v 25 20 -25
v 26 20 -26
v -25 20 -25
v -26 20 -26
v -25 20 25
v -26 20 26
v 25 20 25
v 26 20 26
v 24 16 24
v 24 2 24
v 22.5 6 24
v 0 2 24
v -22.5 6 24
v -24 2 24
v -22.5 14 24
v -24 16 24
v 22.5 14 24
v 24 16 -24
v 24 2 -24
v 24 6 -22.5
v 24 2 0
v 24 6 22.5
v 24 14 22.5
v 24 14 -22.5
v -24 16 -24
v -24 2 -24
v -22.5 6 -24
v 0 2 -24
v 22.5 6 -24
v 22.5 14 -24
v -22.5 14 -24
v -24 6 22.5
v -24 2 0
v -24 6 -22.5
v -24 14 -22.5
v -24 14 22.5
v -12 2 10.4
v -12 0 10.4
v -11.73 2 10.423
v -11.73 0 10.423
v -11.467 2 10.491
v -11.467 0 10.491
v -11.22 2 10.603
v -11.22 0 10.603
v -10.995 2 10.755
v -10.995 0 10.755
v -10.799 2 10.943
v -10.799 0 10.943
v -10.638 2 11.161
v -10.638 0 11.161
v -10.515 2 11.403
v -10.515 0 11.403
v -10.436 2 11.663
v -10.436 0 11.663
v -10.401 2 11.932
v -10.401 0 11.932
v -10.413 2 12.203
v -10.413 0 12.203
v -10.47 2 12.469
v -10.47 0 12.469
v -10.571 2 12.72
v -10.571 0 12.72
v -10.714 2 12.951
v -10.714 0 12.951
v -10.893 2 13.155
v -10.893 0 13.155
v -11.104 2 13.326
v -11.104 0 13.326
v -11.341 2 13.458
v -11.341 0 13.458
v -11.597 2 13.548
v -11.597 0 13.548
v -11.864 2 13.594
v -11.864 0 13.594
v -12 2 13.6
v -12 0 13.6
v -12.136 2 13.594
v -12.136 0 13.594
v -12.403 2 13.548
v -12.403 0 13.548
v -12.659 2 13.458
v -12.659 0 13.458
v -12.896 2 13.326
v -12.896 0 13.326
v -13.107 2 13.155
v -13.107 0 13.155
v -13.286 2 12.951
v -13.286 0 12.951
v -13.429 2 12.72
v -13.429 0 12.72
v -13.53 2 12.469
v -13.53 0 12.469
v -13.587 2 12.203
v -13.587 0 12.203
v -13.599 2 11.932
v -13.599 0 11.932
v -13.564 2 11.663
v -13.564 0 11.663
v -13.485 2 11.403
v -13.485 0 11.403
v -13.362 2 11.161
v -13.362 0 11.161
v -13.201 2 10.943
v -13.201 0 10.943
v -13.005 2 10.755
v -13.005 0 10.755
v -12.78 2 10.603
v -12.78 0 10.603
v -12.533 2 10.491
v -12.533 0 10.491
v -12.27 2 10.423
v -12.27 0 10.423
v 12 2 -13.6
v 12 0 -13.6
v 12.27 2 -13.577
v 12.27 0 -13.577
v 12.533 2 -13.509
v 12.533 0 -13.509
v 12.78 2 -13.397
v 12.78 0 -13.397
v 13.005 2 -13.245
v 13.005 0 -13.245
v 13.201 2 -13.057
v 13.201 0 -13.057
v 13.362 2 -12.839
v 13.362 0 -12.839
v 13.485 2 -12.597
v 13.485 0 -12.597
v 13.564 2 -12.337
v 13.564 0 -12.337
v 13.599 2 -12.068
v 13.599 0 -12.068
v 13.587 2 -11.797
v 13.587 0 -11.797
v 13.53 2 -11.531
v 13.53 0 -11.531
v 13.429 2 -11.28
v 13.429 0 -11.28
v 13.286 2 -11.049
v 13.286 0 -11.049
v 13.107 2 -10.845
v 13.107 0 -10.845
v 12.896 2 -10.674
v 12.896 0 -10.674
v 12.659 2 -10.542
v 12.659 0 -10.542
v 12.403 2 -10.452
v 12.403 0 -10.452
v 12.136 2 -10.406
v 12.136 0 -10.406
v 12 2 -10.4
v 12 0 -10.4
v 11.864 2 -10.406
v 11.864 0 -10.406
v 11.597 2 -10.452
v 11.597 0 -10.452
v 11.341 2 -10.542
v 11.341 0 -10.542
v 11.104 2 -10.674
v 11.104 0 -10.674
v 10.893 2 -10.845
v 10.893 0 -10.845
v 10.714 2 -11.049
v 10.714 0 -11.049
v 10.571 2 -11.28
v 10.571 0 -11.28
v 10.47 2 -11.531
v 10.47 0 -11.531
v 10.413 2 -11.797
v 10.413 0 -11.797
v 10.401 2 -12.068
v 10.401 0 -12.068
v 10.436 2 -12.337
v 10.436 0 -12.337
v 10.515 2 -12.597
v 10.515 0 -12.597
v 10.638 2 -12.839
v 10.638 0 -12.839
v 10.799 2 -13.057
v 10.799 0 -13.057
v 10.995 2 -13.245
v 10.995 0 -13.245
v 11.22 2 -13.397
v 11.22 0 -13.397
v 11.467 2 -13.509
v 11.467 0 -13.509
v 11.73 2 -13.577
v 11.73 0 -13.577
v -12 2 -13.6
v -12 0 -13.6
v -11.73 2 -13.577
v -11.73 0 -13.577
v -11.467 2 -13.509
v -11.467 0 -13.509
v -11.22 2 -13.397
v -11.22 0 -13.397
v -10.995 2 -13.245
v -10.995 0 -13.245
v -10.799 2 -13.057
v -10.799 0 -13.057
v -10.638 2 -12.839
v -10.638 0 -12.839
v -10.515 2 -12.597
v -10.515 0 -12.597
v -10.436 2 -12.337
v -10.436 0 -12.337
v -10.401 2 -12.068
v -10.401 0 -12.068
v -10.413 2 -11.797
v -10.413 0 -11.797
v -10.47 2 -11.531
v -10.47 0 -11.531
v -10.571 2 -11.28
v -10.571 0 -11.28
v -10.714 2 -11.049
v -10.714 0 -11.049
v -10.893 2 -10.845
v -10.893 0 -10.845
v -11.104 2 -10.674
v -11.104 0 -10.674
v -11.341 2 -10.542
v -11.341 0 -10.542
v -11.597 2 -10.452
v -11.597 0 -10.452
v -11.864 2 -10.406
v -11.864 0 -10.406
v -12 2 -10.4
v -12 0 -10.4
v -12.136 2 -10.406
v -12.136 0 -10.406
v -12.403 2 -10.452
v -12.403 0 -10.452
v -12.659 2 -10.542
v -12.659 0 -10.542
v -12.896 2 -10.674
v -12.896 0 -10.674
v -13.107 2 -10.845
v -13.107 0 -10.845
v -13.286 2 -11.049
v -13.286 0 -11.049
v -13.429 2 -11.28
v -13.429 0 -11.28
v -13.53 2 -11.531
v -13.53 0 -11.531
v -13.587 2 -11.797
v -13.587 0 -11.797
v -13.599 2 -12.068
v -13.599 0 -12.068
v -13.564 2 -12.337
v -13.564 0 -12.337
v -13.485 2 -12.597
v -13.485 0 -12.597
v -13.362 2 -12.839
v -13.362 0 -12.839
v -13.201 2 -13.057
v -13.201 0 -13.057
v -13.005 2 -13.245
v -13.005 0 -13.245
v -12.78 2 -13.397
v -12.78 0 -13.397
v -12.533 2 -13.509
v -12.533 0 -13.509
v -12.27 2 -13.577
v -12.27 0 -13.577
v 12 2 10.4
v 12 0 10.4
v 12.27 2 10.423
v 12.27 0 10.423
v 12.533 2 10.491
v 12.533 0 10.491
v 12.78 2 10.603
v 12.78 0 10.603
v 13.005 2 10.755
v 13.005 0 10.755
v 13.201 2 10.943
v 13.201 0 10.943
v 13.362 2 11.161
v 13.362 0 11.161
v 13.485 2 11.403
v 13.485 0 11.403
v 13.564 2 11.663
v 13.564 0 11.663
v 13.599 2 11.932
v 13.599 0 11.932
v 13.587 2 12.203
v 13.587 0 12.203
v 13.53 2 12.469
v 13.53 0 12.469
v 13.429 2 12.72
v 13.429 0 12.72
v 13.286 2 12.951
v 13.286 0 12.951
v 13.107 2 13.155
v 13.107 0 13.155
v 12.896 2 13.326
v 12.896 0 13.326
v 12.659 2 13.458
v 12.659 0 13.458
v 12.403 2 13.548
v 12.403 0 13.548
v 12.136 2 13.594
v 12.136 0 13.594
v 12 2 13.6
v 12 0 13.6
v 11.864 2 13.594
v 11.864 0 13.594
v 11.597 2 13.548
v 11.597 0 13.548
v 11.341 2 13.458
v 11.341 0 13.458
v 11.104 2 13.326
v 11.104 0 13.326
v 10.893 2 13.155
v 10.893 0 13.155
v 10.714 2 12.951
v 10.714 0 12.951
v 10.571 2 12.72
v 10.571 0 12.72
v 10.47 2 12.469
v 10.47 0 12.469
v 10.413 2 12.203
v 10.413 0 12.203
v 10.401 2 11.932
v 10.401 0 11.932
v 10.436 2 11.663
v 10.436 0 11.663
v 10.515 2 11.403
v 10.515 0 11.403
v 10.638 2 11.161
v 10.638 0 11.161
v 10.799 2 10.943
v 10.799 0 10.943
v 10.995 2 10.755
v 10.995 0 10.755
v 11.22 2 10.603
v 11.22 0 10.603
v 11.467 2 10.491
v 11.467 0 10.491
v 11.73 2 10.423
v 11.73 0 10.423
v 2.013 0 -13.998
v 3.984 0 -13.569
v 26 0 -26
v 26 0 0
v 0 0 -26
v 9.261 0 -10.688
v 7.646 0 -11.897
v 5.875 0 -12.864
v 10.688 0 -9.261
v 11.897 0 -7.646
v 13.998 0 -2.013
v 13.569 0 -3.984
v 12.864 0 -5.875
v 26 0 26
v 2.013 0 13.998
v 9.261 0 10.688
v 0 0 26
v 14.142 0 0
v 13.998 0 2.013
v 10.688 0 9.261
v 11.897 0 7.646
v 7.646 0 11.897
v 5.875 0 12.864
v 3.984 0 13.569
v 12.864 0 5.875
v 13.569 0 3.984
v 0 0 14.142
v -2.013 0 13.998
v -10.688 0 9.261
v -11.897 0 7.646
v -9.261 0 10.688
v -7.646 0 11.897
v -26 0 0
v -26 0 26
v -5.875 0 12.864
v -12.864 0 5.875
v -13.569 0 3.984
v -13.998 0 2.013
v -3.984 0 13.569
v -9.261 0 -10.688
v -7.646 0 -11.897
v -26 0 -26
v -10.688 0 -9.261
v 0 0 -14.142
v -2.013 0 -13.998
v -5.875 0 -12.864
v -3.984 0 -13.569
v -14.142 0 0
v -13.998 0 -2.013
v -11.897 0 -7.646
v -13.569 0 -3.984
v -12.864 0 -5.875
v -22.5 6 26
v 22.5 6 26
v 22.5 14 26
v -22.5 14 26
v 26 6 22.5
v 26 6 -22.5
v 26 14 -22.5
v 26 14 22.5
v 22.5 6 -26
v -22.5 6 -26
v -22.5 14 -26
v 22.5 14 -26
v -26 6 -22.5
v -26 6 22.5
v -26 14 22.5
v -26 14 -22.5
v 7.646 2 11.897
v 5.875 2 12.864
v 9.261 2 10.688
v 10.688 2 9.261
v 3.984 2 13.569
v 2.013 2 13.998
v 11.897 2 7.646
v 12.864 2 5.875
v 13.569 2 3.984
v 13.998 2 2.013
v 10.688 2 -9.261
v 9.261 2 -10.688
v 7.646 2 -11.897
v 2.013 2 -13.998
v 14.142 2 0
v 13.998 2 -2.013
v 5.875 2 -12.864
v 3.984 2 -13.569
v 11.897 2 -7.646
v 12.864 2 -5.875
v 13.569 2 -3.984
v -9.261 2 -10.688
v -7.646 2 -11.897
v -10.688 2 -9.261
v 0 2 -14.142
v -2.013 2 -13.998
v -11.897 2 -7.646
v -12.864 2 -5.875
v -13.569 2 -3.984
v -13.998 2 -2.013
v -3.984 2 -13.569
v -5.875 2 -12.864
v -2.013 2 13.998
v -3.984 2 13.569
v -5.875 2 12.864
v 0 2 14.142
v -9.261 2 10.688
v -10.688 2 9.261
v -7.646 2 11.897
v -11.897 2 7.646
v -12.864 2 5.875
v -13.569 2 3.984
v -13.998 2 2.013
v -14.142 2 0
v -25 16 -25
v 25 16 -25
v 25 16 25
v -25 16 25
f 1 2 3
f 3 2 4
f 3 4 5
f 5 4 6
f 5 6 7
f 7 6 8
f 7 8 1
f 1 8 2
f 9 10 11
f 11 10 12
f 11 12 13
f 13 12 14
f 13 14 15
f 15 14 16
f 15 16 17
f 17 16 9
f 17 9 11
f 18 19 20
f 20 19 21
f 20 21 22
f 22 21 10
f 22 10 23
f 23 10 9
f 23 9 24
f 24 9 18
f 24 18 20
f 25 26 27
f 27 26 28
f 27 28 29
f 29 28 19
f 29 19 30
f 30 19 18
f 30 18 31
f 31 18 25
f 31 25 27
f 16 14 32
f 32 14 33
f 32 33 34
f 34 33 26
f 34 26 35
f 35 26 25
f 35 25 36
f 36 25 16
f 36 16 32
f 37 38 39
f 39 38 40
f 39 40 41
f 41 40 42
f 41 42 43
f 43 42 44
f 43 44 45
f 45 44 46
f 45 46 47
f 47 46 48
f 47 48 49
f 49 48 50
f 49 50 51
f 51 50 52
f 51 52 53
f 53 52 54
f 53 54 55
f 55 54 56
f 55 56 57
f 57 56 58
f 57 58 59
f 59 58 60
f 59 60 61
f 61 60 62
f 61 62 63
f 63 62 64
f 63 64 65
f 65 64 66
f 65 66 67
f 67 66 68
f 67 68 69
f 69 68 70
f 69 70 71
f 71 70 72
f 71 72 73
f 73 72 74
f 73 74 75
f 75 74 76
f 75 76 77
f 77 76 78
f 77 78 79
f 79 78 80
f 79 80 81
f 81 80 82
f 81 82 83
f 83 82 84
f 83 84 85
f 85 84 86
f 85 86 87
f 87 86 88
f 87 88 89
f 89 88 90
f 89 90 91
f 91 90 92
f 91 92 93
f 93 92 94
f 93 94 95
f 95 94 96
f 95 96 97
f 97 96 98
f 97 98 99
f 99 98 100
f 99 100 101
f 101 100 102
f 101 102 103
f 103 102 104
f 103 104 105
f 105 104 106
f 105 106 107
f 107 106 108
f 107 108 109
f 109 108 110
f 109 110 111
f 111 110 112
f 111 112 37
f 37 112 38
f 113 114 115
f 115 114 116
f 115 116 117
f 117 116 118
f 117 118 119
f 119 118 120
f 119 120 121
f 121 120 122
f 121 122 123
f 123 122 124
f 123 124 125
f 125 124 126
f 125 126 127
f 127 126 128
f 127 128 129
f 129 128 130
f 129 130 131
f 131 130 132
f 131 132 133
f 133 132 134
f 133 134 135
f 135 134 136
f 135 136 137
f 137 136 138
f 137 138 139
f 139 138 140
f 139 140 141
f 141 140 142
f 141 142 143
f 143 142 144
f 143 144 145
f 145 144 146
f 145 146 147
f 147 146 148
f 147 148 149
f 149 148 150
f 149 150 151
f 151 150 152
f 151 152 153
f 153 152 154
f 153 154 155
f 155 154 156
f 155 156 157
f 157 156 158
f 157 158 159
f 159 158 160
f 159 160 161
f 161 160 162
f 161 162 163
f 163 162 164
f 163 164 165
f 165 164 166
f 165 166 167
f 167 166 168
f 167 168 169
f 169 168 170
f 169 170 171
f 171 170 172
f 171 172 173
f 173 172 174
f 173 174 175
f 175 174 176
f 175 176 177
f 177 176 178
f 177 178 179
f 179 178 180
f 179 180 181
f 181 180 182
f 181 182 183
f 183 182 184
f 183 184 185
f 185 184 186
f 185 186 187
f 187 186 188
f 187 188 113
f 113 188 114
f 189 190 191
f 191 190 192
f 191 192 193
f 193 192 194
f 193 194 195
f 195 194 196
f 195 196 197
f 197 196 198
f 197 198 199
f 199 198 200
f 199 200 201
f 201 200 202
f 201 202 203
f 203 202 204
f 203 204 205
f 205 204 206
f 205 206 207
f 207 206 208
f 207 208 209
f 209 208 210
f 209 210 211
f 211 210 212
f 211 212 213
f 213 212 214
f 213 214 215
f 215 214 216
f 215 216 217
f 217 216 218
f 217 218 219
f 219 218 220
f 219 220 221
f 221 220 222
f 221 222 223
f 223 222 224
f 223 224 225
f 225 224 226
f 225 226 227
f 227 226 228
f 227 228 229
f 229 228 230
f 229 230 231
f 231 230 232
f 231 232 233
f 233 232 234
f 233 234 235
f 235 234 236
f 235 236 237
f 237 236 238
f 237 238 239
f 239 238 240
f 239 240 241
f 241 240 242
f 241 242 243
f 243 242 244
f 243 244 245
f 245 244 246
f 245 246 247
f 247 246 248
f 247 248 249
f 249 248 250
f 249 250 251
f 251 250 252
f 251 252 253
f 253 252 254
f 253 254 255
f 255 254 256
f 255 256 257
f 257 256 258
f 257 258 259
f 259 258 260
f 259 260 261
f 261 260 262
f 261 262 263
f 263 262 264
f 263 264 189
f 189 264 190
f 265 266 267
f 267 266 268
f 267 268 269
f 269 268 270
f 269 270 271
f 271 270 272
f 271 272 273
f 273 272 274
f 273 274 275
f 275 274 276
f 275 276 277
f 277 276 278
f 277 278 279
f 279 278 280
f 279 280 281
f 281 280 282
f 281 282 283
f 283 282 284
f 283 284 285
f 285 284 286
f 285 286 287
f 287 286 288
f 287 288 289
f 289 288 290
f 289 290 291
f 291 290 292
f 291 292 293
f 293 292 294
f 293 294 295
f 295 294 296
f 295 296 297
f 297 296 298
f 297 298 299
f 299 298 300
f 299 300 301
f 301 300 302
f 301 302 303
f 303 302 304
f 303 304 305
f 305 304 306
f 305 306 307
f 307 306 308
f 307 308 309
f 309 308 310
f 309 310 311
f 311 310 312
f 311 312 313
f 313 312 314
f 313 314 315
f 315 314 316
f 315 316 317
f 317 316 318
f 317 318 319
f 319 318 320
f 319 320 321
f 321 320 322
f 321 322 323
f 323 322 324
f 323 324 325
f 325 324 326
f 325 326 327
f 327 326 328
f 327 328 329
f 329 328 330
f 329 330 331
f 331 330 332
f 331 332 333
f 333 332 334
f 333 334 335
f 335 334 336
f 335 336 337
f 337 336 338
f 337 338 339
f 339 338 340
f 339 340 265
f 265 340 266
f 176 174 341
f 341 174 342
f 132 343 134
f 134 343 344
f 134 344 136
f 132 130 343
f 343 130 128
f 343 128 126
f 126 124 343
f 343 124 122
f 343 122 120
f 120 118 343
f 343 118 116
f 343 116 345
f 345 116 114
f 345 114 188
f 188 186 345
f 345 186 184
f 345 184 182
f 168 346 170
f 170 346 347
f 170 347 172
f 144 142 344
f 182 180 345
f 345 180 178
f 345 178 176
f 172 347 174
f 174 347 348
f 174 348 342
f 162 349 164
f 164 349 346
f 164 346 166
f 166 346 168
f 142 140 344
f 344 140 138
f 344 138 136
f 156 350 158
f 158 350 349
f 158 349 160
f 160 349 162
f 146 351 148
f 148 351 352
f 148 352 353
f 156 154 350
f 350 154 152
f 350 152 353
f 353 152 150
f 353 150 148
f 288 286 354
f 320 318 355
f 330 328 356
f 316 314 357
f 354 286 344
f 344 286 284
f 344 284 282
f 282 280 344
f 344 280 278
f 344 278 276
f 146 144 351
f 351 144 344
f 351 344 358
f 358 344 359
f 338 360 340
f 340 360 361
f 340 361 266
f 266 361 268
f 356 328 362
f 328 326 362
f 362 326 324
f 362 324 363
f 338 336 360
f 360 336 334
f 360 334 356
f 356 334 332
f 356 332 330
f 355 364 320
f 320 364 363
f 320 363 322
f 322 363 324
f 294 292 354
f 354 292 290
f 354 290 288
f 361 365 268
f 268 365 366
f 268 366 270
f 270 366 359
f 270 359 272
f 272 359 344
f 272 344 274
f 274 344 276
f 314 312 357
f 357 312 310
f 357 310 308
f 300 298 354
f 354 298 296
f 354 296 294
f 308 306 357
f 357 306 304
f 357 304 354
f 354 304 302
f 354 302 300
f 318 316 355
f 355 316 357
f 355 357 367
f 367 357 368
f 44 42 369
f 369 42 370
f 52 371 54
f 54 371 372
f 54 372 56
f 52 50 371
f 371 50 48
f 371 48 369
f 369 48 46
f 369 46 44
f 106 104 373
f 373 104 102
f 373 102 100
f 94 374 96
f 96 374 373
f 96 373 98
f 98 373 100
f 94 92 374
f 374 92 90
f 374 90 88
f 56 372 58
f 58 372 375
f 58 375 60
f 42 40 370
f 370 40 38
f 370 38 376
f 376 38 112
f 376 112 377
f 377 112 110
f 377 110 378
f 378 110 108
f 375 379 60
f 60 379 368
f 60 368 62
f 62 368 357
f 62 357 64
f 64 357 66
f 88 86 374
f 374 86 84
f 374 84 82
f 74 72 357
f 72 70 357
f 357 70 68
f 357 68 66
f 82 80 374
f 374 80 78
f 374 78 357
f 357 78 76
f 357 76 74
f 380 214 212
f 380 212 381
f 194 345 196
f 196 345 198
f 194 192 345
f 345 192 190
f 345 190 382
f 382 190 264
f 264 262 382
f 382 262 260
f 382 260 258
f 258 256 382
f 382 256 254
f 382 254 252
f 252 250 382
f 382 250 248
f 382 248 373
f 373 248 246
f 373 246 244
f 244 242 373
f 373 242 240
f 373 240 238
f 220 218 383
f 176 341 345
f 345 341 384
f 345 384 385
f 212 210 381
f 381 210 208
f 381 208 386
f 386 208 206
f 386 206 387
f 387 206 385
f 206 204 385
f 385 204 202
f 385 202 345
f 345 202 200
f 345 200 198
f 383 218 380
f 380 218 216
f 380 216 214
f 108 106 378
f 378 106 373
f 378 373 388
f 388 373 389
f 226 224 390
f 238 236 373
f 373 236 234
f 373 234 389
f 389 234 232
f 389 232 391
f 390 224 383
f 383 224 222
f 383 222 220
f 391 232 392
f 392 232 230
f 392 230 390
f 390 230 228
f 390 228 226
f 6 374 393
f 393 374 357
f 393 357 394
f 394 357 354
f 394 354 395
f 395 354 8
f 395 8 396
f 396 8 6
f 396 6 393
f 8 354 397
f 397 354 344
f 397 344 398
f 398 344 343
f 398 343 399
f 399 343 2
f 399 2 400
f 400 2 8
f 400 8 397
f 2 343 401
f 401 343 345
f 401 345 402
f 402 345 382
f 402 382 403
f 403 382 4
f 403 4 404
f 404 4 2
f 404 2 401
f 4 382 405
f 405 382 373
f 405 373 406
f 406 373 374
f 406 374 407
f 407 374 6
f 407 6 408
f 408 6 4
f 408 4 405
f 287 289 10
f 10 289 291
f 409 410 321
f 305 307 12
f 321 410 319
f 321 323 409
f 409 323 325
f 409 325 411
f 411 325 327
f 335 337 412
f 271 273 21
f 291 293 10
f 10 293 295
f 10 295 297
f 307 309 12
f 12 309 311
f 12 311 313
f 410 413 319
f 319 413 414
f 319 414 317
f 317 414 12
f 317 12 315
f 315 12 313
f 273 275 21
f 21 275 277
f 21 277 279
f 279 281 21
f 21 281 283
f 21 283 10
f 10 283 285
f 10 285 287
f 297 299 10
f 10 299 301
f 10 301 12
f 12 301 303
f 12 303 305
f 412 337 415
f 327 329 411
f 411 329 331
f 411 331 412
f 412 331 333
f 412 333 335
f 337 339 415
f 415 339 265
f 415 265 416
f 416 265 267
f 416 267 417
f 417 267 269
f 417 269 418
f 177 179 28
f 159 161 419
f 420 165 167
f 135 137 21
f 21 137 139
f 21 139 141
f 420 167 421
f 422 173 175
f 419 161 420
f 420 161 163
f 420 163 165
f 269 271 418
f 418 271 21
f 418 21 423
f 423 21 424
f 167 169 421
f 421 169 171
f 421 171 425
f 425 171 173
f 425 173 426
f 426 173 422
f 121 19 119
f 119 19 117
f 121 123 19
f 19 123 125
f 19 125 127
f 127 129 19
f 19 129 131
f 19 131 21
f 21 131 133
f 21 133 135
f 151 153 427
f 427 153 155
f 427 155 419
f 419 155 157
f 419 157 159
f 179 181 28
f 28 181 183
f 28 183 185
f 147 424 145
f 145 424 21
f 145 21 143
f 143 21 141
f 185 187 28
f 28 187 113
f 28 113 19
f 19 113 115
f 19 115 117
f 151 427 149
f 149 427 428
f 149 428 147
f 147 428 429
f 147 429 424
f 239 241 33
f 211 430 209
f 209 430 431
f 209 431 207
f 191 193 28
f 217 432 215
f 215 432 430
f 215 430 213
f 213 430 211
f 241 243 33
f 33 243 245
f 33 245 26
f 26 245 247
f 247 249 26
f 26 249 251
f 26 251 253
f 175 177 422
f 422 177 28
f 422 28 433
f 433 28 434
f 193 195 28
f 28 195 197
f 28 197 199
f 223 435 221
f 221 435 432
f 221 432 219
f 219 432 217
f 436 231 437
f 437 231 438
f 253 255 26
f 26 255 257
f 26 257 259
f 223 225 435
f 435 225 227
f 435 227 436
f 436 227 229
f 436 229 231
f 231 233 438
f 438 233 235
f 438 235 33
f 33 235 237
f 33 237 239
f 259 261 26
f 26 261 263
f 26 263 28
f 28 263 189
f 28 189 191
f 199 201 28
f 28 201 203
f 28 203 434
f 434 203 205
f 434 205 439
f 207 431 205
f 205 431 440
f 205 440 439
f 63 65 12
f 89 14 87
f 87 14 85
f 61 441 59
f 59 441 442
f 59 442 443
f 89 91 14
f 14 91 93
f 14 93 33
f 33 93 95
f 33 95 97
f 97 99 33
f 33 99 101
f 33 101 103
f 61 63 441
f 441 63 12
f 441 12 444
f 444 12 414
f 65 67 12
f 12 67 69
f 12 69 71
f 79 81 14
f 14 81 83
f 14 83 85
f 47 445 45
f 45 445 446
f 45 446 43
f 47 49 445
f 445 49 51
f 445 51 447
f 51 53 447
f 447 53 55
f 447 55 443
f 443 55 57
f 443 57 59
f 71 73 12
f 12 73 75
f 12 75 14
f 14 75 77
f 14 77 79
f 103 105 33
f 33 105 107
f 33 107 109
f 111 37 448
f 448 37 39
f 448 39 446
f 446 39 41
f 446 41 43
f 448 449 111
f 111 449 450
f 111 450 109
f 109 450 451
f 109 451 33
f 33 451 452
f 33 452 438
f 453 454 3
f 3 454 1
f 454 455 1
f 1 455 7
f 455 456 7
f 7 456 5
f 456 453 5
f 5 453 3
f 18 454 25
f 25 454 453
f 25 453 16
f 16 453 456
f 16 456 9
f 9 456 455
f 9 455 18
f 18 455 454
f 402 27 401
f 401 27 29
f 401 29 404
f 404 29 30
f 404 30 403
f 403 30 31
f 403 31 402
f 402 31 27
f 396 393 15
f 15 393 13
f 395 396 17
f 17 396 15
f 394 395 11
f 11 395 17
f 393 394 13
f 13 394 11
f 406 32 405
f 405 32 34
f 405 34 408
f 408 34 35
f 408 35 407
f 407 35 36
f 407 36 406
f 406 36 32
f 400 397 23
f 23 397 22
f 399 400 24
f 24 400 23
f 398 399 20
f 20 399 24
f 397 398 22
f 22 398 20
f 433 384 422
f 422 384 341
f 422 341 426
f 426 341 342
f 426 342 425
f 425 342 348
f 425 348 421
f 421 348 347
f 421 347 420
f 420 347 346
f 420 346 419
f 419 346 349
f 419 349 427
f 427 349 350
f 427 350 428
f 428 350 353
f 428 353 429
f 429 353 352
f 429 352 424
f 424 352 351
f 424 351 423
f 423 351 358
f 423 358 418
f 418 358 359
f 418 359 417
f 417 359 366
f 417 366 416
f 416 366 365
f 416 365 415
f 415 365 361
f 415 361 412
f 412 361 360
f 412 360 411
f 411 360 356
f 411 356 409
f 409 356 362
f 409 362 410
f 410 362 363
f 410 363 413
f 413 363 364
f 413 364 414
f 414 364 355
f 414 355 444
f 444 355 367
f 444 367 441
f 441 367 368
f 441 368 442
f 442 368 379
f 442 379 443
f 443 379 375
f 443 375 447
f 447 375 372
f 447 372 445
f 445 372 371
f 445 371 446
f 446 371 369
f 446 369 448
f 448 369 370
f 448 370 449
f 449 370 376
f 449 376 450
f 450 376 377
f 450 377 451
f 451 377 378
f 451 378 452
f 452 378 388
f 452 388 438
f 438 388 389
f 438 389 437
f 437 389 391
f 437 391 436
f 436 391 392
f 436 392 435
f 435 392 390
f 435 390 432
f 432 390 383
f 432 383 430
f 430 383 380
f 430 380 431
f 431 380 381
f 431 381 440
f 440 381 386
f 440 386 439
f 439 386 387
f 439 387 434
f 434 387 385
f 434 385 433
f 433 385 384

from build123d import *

# Parameters (mm, degrees)
SKETCH_1_W               = 52
SKETCH_1_H               = 52
SKETCH_1_R               = 1.6
SKETCH_1_W_2             = 20
SKETCH_1_H_2             = 20
EXTRUDE_5_DEPTH          = 20
SHELL_6_T                = -2
SKETCH_4_W               = 50
SKETCH_4_H               = 50
SKETCH_4_W_2             = 48
SKETCH_4_H_2             = 48
CUT_EXTRUDE_4_DEPTH      = 4
CUT_EXTRUDE_5_DEPTH      = 60.799665551
CUT_EXTRUDE_5_DEPTH_BACK = 60.799665551
SKETCH_5_W               = 45
SKETCH_5_H               = 8
CUT_EXTRUDE_6_DEPTH      = 60.799665551
CUT_EXTRUDE_6_DEPTH_BACK = 60.799665551
SKETCH_6_W               = 45
SKETCH_6_H               = 8
SKETCH_7_R               = 14.142135624
CUT_EXTRUDE_7_DEPTH      = 10


with BuildPart() as part:
    # 草图1 → 凸台-拉伸5 (new body)
    with BuildSketch(Plane(origin=(0, 0, 0), x_dir=(1, 0, 0), z_dir=(0, 1, 0))):
        Rectangle(SKETCH_1_W, SKETCH_1_H)
        with Locations(Location((-12, 12, 0), (0, 0, 270))):
            Circle(SKETCH_1_R, mode=Mode.SUBTRACT)
        with Locations(Location((12, 12, 0), (0, 0, 270))):
            Circle(SKETCH_1_R, mode=Mode.SUBTRACT)
        with Locations(Location((12, -12, 0), (0, 0, 270))):
            Circle(SKETCH_1_R, mode=Mode.SUBTRACT)
        with Locations(Location((-12, -12, 0), (0, 0, 270))):
            Circle(SKETCH_1_R, mode=Mode.SUBTRACT)
        Rectangle(SKETCH_1_W_2, SKETCH_1_H_2, mode=Mode.SUBTRACT)
    extrude(amount=EXTRUDE_5_DEPTH)

    # 抽壳6
    shell_6_openings = [part.faces().sort_by_distance(p)[0] for p in [
        (-12, 10, 10.4),
        (-10, 10, 0),
        (0, 10, 10),
        (10, 10, 0),
        (0, 10, -10),
        (12, 10, -13.6),
        (-12, 10, -13.6),
        (0, 20, -25.264608948),
        (12, 10, 10.4),
    ]]
    offset(amount=SHELL_6_T, openings=shell_6_openings, kind=Kind.INTERSECTION)

    # 草图4 → 切除-拉伸4 (cut)
    with BuildSketch(Plane(origin=(0, 20, 0), x_dir=(1, 0, 0), z_dir=(0, 1, 0))):
        Rectangle(SKETCH_4_W, SKETCH_4_H)
        Rectangle(SKETCH_4_W_2, SKETCH_4_H_2, mode=Mode.SUBTRACT)
    extrude(amount=-CUT_EXTRUDE_4_DEPTH, mode=Mode.SUBTRACT)

    # 草图5 → 切除-拉伸5 (cut, two sides: drawn at the far end of the back side and taken through both)
    with BuildSketch(Plane.XY.offset(-24).offset(-CUT_EXTRUDE_5_DEPTH_BACK)):
        with Locations((0, 10)):
            Rectangle(SKETCH_5_W, SKETCH_5_H)
    extrude(amount=CUT_EXTRUDE_5_DEPTH + CUT_EXTRUDE_5_DEPTH_BACK, mode=Mode.SUBTRACT)

    # 草图6 → 切除-拉伸6 (cut, two sides: drawn at the far end of the back side and taken through both)
    with BuildSketch(Plane(origin=(-24, 0, 0), x_dir=(0, 0, -1), z_dir=(1, 0, 0)).offset(-CUT_EXTRUDE_6_DEPTH_BACK)):
        with Locations((0, 10)):
            Rectangle(SKETCH_6_W, SKETCH_6_H)
    extrude(amount=CUT_EXTRUDE_6_DEPTH + CUT_EXTRUDE_6_DEPTH_BACK, mode=Mode.SUBTRACT)

    # 草图7 → 切除-拉伸7 (cut)
    with BuildSketch(Plane.XZ):
        with Locations(Location((0, 0, 0), (0, 0, 270))):
            Circle(SKETCH_7_R)
    extrude(amount=-CUT_EXTRUDE_7_DEPTH, mode=Mode.SUBTRACT)


solid = part.part
